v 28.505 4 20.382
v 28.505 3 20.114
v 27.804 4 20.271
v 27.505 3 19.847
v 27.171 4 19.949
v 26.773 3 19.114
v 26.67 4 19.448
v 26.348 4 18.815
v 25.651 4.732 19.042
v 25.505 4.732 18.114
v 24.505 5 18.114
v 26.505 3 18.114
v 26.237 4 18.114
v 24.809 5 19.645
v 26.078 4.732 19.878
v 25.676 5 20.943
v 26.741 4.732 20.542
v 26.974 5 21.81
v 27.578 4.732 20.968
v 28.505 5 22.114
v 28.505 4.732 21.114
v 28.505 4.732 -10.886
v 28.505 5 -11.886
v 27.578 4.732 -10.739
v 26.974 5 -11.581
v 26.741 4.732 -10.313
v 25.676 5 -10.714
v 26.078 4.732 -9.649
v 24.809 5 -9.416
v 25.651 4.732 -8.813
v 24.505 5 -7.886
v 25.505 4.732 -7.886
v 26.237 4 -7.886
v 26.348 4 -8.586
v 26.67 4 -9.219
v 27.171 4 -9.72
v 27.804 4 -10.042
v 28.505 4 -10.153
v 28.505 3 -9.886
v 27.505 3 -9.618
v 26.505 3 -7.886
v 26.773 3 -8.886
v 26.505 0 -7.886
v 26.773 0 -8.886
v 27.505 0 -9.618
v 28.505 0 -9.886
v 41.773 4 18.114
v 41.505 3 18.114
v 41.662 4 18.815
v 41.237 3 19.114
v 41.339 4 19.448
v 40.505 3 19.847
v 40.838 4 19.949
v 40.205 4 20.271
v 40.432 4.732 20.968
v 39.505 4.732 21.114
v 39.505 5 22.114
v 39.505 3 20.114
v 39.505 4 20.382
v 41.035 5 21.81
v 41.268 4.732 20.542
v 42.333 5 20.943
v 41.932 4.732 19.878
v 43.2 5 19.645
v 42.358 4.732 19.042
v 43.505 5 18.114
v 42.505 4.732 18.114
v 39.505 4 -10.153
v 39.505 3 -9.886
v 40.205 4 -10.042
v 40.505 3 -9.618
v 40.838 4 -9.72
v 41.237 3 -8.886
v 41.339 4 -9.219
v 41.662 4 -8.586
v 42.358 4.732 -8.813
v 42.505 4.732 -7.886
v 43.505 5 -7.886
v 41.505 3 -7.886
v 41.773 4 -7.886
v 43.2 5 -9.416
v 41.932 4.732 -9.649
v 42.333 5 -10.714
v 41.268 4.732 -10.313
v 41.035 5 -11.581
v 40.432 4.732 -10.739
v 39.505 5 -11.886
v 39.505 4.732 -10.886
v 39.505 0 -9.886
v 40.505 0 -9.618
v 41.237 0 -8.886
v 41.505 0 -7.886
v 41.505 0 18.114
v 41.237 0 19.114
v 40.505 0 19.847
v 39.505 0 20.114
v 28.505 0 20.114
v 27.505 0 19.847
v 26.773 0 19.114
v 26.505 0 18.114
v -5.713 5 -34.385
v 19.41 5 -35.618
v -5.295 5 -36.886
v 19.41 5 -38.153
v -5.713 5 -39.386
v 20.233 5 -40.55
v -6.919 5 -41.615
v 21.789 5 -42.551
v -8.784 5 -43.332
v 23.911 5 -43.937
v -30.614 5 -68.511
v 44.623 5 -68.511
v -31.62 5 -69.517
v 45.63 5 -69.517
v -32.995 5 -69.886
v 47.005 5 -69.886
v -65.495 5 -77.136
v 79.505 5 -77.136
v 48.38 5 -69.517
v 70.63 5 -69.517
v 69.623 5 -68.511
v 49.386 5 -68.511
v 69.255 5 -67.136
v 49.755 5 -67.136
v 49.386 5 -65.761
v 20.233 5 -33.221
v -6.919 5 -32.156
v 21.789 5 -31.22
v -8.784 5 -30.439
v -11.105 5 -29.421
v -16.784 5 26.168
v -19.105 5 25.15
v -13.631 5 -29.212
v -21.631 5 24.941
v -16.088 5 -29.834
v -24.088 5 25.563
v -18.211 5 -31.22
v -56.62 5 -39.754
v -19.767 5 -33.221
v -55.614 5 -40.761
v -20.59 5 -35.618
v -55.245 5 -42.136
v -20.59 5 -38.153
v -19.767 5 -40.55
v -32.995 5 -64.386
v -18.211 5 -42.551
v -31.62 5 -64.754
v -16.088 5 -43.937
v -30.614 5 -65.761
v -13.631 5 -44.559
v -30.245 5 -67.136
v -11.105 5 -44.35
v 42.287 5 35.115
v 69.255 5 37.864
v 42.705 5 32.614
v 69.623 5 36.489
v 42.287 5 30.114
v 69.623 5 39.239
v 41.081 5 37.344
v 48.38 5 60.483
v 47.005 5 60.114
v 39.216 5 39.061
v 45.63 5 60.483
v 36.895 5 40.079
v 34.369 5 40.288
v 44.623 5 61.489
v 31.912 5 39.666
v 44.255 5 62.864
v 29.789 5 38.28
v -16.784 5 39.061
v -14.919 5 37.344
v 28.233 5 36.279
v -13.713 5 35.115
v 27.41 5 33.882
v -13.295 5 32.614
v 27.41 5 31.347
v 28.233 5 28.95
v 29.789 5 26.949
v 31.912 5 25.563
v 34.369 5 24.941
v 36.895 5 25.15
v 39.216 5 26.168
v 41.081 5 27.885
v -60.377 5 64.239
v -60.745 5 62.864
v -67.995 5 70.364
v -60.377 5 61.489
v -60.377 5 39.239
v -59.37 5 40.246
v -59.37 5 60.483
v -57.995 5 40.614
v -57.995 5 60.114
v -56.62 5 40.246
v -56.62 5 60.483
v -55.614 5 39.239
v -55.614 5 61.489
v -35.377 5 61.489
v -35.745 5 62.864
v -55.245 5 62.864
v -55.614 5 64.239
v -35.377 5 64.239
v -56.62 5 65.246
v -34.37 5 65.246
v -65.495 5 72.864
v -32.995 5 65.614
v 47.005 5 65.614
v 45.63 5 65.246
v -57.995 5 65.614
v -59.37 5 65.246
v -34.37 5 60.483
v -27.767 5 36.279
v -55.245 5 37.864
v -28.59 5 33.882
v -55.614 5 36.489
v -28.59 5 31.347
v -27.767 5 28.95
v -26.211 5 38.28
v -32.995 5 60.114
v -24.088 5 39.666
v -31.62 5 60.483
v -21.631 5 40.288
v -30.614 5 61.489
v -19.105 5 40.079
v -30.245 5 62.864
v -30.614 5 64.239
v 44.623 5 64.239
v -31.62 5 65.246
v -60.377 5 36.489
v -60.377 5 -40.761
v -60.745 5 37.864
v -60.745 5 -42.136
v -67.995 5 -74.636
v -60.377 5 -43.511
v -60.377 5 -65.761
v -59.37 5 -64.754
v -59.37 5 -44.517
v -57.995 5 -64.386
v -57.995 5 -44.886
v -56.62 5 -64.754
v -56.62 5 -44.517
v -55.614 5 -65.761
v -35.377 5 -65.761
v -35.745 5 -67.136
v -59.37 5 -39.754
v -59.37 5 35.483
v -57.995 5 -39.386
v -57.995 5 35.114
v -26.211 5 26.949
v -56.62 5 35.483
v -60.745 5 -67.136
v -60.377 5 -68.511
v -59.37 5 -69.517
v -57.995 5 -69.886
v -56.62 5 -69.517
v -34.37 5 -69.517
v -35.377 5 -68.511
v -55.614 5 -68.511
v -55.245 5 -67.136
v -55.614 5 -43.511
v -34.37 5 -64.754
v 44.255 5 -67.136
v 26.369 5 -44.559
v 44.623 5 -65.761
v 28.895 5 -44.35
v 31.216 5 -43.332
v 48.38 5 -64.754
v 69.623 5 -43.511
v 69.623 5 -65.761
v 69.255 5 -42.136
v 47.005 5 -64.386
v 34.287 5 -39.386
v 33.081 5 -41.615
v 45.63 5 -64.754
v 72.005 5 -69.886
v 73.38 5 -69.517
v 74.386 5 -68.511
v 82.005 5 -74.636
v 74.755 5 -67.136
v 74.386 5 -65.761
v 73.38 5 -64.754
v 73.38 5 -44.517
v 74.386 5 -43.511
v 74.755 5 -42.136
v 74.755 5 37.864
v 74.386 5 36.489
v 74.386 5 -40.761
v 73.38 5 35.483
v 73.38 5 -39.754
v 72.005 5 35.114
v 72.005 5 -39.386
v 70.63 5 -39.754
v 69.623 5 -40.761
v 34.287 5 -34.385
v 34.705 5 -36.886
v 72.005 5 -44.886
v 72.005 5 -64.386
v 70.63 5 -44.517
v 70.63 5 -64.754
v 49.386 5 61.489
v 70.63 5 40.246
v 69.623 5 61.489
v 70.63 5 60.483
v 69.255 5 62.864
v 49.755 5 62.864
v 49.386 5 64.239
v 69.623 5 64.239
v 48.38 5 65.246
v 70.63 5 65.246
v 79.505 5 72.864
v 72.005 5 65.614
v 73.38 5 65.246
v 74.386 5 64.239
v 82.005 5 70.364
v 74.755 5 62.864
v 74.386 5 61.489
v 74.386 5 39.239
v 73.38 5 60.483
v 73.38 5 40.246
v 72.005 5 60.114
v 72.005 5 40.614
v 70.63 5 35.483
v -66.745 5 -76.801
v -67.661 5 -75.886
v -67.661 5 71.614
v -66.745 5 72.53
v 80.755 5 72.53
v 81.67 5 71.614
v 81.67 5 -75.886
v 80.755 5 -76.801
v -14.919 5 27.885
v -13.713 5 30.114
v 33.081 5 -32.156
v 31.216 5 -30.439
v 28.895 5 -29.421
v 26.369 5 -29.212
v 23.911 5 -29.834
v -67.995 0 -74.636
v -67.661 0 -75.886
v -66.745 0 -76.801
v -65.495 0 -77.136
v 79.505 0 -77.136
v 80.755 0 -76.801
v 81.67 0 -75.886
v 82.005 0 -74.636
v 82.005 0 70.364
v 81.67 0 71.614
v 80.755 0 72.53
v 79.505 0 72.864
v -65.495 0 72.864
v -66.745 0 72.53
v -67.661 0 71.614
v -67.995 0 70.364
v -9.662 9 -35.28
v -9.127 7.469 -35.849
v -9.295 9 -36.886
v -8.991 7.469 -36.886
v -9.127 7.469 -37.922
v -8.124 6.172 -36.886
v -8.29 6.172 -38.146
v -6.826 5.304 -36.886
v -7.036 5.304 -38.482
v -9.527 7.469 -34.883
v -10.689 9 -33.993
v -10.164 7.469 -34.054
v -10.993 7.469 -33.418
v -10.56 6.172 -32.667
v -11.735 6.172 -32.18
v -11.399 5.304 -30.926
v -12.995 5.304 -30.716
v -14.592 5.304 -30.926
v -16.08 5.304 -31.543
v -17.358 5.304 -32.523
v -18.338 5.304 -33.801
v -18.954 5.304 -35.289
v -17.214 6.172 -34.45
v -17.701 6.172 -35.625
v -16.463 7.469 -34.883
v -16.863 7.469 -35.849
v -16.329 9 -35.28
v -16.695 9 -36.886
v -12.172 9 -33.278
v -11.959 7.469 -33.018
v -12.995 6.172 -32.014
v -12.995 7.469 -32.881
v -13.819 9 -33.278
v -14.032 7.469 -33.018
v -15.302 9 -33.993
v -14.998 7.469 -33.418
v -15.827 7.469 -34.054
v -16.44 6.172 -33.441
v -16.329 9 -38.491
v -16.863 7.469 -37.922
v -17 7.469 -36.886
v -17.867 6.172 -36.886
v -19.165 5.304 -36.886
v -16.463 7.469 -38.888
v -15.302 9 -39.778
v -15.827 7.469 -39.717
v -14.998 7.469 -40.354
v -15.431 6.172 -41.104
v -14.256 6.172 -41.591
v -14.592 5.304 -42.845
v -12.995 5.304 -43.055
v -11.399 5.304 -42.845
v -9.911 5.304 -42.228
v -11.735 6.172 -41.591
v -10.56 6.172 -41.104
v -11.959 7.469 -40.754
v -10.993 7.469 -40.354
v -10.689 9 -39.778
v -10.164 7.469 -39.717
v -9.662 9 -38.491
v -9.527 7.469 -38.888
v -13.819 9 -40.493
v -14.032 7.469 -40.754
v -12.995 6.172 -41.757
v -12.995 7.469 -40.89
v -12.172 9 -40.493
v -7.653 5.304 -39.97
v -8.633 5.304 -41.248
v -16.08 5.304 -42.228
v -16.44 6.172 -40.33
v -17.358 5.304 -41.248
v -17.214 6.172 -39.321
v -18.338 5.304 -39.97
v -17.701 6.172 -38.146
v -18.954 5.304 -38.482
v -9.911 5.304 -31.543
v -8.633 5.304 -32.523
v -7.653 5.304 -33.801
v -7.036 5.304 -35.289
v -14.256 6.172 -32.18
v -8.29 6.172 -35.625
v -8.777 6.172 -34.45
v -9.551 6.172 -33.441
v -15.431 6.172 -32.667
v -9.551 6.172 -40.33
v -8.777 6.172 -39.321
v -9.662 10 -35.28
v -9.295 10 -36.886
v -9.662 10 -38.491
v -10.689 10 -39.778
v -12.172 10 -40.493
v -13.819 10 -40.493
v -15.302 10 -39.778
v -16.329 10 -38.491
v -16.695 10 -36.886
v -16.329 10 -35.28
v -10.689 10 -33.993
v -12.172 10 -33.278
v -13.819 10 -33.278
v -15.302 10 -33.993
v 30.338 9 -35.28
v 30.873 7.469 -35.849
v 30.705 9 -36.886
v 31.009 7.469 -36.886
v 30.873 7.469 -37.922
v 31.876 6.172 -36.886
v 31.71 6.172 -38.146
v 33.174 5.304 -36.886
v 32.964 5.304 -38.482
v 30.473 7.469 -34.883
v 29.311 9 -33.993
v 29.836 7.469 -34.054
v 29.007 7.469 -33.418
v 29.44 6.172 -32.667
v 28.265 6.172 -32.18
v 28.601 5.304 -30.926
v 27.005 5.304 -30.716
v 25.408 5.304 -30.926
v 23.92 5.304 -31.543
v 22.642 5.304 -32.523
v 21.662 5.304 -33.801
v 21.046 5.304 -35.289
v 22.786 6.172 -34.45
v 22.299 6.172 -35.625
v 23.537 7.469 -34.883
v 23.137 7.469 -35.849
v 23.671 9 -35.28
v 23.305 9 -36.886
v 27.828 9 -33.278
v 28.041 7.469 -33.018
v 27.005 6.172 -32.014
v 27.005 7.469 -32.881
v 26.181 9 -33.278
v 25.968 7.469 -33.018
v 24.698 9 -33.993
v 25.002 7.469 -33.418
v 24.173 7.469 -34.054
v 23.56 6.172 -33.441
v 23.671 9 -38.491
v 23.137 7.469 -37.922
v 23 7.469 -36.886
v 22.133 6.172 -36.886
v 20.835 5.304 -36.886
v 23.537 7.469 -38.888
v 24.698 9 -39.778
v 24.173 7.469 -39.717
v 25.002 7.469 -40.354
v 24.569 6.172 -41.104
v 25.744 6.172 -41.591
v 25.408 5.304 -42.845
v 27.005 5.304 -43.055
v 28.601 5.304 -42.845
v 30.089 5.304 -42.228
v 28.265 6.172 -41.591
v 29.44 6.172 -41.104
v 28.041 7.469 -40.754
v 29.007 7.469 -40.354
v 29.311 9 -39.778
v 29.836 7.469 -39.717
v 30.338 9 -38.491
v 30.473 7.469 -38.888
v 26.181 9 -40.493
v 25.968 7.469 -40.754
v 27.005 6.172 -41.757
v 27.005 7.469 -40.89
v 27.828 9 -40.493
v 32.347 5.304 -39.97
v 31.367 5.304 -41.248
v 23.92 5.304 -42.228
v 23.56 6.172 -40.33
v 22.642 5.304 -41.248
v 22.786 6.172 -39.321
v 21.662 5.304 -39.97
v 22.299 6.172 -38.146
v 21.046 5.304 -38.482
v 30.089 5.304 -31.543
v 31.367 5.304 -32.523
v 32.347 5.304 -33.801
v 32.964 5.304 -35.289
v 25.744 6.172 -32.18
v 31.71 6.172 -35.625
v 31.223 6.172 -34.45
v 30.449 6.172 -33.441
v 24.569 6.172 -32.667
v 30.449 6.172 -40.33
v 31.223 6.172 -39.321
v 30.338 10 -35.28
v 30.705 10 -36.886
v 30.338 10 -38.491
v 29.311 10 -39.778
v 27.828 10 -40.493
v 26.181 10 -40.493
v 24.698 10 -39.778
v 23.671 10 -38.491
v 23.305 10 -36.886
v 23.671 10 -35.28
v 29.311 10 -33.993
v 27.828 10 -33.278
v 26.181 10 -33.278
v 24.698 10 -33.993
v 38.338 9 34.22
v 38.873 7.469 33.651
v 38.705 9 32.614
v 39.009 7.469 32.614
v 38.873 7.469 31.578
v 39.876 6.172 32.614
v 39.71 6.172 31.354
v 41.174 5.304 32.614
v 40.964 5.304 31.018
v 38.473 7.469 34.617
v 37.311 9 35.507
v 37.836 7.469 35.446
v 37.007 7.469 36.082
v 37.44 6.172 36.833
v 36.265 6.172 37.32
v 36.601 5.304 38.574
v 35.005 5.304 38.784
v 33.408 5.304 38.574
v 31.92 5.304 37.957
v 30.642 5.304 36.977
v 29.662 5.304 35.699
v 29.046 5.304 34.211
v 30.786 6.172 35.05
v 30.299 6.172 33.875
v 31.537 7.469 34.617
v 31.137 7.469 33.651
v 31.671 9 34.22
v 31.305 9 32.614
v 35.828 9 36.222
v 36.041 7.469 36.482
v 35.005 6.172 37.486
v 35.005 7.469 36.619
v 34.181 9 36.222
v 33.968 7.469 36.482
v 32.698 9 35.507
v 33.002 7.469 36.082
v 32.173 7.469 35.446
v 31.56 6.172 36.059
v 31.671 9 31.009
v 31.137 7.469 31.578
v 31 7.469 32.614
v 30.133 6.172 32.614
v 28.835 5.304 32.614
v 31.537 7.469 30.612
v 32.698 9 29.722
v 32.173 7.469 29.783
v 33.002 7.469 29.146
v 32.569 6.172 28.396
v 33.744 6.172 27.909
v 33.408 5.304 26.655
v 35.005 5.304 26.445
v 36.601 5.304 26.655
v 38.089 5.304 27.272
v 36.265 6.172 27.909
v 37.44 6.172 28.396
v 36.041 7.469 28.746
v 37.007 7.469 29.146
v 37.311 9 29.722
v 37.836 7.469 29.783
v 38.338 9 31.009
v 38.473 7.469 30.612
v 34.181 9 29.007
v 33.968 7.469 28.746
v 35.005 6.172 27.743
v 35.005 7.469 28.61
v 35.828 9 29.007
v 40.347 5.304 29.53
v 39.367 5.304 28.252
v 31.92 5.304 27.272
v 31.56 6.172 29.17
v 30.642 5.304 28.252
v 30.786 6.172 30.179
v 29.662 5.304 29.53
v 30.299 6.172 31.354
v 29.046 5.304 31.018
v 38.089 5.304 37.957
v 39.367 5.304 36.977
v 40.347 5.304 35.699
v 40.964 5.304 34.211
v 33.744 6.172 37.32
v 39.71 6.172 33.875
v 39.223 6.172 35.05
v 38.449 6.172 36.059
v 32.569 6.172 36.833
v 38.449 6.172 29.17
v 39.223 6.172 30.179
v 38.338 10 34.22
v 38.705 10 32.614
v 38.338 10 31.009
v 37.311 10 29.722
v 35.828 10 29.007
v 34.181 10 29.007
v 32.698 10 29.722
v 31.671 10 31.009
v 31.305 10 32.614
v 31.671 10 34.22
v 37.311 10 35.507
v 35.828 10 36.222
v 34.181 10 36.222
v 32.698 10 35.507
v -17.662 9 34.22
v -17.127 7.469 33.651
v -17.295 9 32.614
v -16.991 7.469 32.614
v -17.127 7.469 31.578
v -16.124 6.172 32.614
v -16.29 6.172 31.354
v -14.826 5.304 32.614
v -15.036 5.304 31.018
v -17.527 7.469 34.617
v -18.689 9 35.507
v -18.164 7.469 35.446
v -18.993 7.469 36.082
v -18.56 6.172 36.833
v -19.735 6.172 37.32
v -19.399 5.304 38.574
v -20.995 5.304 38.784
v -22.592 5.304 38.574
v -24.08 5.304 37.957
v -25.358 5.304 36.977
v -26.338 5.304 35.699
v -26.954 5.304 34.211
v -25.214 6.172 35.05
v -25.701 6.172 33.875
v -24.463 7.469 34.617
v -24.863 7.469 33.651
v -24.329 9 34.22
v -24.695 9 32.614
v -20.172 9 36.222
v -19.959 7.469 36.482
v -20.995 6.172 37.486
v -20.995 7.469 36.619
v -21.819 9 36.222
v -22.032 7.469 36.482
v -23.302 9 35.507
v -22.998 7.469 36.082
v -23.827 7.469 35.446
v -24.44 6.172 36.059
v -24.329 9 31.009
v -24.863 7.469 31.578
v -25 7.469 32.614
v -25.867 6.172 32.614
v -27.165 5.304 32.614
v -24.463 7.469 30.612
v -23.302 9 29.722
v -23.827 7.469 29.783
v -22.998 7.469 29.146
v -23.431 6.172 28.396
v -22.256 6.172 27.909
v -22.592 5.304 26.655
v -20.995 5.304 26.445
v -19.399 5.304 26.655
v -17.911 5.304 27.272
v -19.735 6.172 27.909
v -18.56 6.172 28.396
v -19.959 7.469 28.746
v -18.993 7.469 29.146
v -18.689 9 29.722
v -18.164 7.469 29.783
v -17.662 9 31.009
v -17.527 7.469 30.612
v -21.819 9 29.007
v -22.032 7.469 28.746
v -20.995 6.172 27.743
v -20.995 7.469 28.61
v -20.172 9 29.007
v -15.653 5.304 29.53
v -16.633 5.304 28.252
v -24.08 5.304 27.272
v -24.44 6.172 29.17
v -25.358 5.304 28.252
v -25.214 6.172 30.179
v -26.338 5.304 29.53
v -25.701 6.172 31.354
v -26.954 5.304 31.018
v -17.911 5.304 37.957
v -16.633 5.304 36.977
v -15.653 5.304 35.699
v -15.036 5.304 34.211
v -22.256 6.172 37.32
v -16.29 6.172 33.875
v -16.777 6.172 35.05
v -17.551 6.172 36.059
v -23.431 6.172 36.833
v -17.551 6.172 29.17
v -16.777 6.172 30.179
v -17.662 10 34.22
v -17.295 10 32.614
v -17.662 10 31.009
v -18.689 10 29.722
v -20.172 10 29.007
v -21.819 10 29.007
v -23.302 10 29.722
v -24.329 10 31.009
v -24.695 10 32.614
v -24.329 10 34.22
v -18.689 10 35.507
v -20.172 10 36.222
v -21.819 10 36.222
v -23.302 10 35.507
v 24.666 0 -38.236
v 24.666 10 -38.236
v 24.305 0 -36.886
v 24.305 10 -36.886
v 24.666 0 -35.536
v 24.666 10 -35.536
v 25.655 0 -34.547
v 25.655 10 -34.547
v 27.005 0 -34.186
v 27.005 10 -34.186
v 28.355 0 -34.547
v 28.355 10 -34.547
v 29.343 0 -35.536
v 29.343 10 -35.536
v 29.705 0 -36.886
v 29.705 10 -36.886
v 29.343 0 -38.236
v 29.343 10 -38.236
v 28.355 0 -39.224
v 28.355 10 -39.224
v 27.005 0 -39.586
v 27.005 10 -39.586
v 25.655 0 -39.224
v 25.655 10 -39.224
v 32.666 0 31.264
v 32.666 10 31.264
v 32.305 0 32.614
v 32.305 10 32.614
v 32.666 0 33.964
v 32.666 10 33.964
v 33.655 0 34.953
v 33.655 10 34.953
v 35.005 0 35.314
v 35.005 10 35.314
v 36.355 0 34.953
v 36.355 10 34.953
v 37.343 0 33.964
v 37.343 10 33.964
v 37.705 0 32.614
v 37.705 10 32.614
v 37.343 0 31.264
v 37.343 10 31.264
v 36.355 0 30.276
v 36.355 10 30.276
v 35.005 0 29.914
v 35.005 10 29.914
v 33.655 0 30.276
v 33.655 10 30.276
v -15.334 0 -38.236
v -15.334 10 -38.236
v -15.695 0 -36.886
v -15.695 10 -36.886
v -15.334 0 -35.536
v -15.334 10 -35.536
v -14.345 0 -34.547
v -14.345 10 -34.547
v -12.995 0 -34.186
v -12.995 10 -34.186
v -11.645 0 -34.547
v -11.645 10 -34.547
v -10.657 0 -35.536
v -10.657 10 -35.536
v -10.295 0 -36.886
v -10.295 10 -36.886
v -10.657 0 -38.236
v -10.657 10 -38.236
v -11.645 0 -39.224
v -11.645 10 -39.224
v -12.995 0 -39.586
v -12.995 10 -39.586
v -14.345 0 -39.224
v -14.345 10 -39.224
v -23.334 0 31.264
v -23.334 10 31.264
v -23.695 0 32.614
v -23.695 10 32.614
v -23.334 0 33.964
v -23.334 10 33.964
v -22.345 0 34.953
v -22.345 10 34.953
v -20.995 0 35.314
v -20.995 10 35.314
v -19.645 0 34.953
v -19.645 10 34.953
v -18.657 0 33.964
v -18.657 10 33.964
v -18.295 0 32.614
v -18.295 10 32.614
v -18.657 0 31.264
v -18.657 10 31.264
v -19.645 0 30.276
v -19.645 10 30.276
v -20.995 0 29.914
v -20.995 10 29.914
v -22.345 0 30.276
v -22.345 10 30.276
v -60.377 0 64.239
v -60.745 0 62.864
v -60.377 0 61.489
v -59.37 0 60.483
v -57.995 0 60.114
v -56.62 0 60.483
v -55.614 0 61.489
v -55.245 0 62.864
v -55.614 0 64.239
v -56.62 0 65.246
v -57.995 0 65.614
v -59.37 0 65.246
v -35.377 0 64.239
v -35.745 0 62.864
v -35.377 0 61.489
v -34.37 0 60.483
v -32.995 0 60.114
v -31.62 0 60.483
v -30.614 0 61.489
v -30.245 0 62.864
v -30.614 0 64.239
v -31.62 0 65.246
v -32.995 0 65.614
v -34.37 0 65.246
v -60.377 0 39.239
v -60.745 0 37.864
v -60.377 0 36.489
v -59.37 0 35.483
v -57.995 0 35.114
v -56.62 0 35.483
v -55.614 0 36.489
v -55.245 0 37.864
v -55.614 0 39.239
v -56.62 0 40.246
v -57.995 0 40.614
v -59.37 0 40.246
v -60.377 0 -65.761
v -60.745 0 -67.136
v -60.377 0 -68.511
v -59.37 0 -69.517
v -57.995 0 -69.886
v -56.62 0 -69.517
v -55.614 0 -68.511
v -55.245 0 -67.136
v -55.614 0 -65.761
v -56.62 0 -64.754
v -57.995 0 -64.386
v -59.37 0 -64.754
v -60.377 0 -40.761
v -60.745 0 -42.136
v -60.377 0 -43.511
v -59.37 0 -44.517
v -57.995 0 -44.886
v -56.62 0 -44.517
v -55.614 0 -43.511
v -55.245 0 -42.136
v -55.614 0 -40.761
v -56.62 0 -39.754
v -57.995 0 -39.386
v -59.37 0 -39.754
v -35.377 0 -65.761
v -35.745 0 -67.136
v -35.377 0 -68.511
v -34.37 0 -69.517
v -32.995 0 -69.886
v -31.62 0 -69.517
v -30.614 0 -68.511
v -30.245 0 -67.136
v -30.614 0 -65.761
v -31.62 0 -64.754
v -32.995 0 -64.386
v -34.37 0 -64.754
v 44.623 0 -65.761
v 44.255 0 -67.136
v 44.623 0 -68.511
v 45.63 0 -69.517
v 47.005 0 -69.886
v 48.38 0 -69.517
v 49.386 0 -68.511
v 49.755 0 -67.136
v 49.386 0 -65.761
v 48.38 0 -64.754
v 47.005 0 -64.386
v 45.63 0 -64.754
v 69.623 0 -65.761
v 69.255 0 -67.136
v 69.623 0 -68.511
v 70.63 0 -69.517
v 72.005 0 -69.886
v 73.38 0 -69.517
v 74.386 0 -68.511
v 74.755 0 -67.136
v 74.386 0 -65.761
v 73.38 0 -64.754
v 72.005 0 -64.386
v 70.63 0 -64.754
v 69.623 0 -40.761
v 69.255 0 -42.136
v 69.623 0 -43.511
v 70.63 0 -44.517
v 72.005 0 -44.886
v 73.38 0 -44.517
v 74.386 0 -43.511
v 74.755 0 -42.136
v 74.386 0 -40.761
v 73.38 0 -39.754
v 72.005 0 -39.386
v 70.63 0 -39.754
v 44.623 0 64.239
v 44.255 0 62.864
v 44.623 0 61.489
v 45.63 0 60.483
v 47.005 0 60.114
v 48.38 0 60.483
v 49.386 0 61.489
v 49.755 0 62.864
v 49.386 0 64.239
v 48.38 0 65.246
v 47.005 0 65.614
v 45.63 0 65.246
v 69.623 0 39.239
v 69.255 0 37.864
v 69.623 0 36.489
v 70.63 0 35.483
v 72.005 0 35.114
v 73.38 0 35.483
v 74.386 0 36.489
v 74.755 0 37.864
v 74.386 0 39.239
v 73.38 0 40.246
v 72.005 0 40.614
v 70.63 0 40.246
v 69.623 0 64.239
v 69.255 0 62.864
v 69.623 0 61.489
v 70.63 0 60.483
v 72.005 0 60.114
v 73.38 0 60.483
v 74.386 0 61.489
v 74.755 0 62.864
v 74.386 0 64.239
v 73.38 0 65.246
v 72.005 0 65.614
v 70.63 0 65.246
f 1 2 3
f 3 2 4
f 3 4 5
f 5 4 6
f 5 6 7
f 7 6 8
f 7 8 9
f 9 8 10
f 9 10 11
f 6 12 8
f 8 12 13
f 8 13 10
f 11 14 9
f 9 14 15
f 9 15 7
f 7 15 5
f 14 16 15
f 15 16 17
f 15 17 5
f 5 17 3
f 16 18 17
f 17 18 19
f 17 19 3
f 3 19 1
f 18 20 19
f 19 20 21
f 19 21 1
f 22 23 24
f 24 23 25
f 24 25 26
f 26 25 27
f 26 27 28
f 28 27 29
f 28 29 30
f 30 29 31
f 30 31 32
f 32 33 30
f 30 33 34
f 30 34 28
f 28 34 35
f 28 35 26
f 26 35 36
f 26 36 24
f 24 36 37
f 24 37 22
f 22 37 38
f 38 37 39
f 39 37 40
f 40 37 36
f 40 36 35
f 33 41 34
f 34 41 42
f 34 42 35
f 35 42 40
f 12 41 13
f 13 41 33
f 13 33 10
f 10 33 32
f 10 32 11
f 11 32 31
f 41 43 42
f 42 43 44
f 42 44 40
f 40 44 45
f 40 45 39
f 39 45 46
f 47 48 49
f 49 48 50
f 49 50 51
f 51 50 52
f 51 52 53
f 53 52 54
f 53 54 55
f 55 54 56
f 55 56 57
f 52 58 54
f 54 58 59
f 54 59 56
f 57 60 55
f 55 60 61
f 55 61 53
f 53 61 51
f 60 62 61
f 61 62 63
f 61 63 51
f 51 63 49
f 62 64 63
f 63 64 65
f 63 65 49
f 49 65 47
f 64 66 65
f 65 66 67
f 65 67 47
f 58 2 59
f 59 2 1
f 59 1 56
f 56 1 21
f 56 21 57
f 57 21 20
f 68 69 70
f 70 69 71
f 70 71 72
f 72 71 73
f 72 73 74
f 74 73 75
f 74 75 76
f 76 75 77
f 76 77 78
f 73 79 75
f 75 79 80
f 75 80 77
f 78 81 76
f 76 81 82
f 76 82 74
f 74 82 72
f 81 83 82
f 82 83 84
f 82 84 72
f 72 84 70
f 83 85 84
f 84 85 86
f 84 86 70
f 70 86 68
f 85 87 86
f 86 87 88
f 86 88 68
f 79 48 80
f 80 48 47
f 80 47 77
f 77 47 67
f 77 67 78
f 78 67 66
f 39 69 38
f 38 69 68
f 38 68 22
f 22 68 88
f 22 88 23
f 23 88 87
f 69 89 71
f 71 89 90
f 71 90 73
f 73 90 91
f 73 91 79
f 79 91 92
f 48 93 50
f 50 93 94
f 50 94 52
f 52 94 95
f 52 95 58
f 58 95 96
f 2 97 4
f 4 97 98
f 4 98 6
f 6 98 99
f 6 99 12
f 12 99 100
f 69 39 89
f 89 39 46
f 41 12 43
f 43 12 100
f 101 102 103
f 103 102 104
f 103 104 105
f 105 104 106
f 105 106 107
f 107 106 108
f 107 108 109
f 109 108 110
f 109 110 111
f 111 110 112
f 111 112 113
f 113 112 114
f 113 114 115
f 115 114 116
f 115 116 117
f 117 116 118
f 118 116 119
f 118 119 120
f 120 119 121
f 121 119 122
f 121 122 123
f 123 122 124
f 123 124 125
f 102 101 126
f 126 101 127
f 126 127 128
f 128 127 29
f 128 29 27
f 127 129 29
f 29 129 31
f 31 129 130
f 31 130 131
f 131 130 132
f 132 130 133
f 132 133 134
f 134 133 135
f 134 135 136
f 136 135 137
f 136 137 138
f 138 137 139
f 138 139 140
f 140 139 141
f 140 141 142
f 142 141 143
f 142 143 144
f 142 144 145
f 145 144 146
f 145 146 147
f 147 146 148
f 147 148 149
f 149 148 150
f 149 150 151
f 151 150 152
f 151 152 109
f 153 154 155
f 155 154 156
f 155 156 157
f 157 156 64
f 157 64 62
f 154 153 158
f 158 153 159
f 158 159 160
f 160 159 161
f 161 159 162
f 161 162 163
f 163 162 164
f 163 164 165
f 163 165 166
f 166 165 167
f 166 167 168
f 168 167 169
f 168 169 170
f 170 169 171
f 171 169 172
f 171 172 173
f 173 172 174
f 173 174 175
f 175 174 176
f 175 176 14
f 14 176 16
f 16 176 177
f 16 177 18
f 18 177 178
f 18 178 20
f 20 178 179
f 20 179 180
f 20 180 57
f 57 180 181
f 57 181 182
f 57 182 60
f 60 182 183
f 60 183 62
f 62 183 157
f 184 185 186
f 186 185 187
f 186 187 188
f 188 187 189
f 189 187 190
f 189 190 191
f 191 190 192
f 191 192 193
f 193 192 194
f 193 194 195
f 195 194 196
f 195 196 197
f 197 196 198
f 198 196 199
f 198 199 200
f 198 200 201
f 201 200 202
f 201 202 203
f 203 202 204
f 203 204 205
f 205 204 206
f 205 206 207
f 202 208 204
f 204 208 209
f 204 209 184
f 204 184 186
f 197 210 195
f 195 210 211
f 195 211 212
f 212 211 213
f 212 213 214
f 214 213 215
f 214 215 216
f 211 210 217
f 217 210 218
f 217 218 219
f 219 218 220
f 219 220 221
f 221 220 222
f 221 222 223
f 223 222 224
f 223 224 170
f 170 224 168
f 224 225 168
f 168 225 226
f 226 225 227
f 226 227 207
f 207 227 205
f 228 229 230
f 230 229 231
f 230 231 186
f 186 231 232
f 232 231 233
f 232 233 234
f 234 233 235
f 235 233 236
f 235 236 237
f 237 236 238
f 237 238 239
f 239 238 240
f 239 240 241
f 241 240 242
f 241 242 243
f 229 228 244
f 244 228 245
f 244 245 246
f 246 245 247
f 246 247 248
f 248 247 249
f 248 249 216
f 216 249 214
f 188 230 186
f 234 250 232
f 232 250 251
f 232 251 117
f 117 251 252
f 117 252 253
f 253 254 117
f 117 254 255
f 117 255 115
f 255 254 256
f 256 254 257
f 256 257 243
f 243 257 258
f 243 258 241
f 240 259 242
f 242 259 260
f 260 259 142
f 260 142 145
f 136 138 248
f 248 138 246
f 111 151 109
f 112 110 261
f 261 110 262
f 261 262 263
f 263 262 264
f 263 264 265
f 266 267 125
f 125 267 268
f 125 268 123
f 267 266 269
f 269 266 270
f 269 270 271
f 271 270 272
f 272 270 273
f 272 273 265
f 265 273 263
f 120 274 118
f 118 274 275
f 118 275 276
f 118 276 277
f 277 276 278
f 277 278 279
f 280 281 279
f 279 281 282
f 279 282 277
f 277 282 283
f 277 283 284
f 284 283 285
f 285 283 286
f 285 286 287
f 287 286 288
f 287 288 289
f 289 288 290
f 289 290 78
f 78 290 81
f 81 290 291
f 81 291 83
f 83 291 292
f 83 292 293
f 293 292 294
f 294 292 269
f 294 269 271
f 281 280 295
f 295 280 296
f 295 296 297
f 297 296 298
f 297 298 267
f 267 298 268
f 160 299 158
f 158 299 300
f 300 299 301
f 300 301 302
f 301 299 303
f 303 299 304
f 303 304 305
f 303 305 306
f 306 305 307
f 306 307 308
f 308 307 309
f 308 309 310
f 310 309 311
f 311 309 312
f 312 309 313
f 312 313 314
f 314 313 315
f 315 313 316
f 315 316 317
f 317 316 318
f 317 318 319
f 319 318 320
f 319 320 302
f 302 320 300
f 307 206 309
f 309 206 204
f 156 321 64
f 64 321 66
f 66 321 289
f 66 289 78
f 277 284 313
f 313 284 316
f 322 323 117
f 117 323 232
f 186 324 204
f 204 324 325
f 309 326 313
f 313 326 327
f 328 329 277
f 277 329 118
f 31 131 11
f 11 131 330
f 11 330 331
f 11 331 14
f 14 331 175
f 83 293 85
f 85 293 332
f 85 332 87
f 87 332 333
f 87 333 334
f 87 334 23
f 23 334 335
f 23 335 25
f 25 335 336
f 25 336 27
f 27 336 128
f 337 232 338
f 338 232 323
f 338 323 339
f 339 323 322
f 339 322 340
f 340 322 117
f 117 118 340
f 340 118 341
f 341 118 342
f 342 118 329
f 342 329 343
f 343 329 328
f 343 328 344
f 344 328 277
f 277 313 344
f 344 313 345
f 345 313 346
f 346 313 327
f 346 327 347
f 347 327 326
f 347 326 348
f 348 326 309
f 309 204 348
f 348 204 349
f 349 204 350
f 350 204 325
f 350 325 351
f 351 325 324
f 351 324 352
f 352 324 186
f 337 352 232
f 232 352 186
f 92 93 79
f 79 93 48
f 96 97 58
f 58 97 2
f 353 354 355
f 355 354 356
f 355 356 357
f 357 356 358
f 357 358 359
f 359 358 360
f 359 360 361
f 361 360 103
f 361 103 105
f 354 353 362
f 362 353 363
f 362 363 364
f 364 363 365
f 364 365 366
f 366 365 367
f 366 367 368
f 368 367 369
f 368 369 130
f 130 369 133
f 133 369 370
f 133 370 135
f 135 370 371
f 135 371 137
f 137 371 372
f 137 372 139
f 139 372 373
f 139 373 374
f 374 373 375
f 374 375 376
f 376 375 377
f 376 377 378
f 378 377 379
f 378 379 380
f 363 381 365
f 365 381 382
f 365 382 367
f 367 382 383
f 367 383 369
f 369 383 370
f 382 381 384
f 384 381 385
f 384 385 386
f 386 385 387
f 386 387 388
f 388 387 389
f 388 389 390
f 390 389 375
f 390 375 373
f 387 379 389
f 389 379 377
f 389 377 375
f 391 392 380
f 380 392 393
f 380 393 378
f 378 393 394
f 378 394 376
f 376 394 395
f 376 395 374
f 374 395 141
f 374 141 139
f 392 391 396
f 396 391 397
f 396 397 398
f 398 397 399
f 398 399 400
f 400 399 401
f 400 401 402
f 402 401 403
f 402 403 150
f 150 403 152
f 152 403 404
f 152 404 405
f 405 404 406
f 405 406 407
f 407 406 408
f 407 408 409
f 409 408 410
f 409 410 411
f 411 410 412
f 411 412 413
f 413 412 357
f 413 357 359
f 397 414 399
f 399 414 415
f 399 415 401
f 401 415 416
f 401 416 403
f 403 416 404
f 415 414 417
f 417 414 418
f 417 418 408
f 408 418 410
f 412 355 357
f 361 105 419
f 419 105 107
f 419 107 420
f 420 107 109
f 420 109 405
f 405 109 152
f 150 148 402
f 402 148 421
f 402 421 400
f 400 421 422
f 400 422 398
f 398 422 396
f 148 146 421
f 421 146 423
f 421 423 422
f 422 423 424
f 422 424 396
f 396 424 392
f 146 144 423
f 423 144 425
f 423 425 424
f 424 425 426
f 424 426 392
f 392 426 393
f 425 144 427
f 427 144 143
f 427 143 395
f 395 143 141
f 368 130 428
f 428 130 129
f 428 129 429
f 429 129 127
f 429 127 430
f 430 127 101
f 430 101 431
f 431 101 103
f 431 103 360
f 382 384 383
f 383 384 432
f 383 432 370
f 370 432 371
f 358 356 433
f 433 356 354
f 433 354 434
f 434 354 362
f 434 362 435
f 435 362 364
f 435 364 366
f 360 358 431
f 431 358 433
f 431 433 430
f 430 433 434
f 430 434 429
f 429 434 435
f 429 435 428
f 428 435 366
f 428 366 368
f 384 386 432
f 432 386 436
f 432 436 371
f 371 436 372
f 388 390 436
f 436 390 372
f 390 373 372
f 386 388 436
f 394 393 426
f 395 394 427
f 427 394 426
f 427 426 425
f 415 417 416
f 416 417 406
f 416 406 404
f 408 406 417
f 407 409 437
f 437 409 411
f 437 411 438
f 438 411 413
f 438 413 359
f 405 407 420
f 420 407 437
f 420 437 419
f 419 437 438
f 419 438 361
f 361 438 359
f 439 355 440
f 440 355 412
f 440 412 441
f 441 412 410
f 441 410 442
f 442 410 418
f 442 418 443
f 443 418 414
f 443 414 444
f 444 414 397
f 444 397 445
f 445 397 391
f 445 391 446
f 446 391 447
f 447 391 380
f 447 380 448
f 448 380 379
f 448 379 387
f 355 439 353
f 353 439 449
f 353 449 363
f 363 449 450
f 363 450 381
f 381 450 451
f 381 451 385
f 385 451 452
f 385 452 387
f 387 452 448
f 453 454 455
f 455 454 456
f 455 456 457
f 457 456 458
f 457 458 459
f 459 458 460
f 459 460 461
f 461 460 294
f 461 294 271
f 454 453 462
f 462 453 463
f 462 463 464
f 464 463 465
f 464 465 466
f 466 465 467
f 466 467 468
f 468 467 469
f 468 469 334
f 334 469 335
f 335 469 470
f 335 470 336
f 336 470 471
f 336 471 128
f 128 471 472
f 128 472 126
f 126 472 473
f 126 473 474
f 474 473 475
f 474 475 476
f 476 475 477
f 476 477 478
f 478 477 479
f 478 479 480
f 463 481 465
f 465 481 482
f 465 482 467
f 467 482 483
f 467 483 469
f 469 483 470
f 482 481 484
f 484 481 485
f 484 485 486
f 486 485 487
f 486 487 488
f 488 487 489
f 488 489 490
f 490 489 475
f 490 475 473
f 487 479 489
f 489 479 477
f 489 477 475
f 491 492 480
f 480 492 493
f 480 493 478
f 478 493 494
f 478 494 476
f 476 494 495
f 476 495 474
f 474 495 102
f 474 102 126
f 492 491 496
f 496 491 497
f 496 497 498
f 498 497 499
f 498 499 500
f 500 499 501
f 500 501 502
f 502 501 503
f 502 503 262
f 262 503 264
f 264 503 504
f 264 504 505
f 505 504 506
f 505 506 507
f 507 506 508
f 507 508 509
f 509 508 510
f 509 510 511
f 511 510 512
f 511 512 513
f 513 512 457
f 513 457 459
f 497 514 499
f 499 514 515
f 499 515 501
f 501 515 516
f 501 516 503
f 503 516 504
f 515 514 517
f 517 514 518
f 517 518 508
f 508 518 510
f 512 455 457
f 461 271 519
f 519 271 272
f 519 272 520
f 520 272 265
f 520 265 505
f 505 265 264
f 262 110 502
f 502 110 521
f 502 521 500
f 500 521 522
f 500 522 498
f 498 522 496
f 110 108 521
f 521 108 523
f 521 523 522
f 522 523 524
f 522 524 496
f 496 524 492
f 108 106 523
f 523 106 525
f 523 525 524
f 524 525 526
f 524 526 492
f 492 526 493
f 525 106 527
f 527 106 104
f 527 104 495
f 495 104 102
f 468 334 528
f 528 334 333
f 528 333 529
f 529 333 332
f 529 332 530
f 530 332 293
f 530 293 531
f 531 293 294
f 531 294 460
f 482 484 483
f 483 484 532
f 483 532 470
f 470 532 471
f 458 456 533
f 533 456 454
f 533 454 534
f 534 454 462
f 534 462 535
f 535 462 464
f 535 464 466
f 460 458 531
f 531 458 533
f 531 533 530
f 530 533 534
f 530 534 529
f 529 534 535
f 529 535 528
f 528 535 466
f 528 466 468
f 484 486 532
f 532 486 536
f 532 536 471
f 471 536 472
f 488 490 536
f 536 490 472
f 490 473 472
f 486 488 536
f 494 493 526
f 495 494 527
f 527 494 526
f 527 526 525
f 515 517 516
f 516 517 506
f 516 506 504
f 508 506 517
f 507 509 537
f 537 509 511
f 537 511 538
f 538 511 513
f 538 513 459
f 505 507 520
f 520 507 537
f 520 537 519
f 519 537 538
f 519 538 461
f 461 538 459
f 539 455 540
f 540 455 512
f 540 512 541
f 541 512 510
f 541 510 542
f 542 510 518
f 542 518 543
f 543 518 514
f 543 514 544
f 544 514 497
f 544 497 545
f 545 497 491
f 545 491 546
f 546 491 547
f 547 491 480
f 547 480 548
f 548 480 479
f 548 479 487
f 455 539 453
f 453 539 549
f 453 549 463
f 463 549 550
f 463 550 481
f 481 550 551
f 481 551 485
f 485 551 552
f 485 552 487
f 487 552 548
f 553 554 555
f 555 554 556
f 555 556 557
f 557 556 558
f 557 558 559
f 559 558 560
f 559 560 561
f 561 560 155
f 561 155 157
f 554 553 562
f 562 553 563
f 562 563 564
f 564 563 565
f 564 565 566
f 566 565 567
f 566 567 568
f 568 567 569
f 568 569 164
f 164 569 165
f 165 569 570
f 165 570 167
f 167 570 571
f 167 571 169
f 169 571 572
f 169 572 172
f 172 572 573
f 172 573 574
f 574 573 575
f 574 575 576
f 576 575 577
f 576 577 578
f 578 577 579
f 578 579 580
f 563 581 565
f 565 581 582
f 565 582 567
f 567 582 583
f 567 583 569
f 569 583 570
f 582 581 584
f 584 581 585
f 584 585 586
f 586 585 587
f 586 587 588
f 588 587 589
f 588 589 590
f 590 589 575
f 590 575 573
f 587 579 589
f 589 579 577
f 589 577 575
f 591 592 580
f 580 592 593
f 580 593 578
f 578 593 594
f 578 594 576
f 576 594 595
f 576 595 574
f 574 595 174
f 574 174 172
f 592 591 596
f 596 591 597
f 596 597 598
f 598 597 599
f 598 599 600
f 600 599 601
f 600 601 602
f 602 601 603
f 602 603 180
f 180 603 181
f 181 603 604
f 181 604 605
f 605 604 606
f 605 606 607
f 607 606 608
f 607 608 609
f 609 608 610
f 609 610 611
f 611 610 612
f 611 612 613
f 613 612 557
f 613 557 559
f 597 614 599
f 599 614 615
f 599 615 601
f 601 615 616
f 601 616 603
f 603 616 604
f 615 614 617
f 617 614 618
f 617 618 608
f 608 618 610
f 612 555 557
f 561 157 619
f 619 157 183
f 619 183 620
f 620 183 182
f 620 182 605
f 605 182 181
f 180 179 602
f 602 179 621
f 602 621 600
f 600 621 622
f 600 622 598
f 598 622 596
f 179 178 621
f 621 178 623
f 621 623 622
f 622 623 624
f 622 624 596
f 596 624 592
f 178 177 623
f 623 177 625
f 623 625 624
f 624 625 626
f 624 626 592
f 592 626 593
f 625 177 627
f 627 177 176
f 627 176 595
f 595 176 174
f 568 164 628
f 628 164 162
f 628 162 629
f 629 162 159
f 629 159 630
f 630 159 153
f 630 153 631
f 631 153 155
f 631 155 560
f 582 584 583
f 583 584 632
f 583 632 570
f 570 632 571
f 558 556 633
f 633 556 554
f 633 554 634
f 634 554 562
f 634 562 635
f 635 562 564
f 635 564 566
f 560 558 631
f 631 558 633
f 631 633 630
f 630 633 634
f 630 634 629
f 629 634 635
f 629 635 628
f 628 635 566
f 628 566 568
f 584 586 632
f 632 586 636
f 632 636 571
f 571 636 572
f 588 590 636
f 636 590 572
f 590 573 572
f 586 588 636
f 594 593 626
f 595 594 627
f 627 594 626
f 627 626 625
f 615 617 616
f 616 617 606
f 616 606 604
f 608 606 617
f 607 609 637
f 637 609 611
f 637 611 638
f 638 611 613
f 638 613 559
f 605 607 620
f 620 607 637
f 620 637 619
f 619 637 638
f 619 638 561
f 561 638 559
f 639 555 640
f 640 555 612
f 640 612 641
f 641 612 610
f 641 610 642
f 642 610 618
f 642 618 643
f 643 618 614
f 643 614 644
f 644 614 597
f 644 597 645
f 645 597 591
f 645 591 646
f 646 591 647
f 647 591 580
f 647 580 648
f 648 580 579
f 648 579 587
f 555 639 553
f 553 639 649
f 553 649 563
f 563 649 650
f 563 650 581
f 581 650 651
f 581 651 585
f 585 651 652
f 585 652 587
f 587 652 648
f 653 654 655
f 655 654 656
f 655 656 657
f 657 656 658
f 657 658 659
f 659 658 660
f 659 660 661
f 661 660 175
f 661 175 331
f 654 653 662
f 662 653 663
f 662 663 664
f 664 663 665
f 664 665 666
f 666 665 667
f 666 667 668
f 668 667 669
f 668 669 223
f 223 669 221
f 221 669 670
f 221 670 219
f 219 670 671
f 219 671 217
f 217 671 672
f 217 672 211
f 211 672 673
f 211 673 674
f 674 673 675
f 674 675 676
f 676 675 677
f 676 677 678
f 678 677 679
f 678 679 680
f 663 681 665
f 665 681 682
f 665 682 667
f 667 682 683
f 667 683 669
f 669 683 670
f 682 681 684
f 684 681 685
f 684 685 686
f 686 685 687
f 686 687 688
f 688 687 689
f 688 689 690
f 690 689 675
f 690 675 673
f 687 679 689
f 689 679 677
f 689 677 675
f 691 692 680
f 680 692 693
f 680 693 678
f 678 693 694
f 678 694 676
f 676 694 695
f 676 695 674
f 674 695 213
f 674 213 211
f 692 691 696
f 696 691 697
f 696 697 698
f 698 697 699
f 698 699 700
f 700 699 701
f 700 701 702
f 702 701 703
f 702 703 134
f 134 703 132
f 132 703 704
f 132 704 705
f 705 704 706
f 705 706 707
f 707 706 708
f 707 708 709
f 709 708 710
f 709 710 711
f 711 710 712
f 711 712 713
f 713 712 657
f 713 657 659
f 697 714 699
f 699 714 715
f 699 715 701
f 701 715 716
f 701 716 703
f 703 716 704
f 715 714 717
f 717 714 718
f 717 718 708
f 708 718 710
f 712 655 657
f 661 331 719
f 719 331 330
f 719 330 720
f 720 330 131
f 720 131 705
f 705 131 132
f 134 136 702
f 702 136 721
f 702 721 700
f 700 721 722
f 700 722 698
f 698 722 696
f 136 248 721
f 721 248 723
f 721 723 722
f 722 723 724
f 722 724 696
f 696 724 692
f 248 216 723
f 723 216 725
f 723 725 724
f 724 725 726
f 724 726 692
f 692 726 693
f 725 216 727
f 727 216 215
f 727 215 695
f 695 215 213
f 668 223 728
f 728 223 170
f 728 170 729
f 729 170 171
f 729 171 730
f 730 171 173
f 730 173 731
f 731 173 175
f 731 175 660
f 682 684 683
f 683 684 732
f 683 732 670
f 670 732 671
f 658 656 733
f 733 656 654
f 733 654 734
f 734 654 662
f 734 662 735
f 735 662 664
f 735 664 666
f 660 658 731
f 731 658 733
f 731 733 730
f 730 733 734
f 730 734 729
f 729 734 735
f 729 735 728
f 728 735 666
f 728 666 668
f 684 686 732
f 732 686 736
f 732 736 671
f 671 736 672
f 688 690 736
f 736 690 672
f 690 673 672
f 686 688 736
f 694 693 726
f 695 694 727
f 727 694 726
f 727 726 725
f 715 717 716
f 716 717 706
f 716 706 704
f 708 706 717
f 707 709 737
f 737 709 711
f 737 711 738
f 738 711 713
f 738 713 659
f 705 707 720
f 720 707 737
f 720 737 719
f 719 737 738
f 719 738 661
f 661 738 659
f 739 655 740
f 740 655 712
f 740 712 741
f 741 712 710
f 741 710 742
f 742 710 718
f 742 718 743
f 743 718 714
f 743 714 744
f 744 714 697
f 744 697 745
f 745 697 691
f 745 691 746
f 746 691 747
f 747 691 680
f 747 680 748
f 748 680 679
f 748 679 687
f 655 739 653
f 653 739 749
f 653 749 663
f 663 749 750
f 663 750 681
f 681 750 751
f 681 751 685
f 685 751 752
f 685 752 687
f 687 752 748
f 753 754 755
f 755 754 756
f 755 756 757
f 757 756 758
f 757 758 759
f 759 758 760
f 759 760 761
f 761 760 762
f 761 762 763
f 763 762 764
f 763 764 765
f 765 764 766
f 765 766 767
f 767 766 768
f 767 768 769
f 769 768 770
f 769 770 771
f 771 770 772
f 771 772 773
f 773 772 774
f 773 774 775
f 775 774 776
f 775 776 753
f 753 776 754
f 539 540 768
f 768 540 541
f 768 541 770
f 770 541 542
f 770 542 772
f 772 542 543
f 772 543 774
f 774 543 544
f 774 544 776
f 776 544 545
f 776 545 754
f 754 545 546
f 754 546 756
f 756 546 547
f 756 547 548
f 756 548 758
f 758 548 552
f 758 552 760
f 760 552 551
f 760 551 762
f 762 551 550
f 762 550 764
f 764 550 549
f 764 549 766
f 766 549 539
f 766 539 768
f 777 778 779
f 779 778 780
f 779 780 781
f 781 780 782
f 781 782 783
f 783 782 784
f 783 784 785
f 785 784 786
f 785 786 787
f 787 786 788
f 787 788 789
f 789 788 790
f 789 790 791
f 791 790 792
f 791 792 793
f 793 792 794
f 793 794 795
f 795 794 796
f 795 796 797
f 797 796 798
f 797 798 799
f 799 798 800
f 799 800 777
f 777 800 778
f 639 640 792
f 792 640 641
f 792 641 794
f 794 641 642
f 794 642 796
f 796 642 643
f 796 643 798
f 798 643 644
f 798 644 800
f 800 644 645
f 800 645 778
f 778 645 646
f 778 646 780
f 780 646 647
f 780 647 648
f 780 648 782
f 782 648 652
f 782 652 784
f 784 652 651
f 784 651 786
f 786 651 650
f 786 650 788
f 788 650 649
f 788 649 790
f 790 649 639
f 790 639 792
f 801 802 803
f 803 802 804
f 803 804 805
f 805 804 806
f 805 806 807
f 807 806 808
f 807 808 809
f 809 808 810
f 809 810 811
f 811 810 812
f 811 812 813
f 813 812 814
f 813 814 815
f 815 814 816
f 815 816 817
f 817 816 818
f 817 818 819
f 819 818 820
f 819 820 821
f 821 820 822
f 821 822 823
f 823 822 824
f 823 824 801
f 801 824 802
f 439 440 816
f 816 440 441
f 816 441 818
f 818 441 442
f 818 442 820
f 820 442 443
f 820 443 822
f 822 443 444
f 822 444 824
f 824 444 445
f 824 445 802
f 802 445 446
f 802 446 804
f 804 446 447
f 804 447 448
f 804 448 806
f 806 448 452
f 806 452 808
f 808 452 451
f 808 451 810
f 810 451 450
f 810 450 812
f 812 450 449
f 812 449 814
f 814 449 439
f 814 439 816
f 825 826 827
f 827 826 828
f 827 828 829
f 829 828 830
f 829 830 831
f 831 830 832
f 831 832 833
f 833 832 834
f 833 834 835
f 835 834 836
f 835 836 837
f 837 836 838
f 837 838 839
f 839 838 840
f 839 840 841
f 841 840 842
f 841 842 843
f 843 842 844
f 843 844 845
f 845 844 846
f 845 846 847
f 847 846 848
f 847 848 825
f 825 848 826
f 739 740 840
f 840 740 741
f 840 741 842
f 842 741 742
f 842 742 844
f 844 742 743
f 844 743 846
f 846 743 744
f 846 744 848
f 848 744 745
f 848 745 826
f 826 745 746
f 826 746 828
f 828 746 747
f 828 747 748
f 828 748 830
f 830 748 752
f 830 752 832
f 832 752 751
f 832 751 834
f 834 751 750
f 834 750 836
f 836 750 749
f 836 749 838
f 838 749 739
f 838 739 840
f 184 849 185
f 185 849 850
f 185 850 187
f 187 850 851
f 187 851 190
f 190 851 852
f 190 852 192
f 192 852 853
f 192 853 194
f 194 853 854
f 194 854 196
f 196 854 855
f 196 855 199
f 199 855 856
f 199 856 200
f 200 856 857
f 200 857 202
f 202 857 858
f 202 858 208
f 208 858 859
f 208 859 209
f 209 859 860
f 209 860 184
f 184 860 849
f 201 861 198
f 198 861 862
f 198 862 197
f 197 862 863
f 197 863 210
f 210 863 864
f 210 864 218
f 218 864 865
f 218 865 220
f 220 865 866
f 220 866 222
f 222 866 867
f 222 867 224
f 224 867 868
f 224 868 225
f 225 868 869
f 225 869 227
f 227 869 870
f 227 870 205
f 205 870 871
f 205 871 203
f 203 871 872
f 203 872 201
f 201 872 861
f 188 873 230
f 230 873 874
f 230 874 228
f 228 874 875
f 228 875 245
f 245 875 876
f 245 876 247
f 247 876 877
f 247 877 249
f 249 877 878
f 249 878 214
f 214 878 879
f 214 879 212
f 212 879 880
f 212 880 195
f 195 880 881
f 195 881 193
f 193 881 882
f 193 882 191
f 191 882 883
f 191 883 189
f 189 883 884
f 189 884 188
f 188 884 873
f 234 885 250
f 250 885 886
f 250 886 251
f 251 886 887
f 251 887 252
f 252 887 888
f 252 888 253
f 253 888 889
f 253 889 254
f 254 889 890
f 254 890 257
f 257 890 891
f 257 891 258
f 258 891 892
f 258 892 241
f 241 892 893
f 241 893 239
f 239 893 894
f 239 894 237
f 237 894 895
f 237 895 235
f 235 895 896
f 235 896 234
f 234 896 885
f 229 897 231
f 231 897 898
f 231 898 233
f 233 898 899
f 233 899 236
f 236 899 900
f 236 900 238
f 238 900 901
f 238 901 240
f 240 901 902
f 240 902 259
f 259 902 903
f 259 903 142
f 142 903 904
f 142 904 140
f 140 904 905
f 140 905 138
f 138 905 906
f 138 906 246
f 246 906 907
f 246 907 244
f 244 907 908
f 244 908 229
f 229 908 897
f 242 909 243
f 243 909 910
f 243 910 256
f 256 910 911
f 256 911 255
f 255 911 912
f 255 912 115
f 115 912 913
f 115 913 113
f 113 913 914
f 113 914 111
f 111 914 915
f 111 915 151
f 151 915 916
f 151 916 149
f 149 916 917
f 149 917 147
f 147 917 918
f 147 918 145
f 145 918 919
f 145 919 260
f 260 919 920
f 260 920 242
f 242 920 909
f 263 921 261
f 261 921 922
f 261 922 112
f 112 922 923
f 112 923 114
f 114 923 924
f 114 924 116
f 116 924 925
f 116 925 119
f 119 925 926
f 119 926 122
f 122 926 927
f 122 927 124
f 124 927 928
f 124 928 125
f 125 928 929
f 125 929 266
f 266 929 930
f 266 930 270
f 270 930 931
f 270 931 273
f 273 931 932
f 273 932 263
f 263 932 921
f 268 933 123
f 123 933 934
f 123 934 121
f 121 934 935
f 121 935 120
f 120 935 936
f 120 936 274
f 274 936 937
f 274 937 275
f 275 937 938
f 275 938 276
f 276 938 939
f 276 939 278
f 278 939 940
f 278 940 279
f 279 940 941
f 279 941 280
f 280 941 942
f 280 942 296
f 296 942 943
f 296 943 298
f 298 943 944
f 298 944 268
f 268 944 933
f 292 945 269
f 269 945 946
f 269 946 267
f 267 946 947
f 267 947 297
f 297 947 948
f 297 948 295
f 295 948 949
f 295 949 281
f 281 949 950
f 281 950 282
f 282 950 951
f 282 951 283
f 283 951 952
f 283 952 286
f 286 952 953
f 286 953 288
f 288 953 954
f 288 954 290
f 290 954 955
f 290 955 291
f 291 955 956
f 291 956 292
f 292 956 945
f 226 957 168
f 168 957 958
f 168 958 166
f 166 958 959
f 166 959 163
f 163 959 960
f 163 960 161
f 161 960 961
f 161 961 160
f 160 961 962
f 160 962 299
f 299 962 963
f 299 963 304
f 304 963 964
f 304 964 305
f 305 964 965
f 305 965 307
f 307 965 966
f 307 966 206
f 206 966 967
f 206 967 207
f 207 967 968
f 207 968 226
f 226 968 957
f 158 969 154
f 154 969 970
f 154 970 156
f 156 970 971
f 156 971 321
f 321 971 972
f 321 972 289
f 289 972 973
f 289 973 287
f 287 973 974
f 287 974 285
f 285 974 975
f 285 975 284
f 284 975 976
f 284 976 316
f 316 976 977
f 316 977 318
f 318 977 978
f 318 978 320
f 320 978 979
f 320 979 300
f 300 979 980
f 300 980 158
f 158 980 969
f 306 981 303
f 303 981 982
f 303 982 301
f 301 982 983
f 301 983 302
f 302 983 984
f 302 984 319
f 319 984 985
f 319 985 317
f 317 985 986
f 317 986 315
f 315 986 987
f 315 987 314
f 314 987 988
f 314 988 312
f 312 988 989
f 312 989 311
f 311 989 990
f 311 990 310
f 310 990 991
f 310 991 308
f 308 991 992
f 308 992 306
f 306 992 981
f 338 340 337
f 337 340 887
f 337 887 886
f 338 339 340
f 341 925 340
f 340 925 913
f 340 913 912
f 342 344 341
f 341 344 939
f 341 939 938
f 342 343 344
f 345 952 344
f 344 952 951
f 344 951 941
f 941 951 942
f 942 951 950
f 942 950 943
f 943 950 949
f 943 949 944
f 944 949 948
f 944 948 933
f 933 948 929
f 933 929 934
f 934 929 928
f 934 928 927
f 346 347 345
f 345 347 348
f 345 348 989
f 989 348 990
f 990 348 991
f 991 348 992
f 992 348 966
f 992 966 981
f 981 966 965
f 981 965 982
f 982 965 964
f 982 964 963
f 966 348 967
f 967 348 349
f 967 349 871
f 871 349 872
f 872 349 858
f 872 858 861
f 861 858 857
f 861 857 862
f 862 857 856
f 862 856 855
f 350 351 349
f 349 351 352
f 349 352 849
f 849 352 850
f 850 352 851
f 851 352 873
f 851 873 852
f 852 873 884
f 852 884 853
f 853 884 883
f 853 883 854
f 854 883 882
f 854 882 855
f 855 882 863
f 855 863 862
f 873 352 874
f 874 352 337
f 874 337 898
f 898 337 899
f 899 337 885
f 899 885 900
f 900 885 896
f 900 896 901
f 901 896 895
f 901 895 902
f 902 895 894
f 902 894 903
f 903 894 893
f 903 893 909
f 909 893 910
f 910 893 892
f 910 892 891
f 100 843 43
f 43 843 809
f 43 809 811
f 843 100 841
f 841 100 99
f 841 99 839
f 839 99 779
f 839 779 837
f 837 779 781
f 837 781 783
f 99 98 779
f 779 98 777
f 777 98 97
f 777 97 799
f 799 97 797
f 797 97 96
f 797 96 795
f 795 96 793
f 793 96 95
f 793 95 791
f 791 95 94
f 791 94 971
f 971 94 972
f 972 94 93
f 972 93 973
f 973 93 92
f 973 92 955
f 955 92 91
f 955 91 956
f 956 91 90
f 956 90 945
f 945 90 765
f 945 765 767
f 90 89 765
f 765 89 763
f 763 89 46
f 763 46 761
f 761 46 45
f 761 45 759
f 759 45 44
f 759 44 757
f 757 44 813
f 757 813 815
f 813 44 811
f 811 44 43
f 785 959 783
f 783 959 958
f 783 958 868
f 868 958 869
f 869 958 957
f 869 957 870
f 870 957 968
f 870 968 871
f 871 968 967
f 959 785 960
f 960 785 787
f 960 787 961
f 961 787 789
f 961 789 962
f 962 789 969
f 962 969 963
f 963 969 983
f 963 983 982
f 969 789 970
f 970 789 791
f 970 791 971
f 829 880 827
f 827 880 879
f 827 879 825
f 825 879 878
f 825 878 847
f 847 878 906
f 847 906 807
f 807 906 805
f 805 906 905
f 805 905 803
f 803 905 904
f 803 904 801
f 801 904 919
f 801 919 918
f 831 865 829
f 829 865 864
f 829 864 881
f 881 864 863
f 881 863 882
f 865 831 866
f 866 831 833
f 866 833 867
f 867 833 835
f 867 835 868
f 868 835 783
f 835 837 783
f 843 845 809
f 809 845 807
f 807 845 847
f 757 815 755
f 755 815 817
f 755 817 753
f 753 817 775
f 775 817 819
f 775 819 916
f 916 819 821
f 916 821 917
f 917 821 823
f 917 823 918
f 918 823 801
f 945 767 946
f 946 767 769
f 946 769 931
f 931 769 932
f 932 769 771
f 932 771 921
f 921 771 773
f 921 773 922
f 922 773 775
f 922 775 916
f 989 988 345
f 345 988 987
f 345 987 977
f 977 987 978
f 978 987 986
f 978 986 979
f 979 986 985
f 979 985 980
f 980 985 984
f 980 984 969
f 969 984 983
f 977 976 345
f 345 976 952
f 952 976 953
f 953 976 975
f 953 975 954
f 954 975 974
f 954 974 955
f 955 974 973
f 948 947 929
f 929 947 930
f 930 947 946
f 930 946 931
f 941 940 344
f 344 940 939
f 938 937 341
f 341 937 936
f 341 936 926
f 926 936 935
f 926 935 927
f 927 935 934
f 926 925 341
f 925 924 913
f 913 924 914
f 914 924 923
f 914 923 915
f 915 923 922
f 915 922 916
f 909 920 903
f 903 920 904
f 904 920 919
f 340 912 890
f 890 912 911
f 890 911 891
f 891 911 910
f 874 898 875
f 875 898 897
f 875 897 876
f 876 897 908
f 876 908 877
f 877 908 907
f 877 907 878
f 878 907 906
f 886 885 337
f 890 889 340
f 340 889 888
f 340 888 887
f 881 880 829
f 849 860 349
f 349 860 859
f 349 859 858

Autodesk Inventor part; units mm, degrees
ref_plane "YZ Plane" through (0, 0, 0) normal (1, 0, 0) x (0, 1, 0)
ref_plane "XZ Plane" through (0, 0, 0) normal (0, 1, 0) x (-1, 0, 0)
ref_plane "XY Plane" through (0, 0, 0) normal (0, 0, 1) x (1, 0, 0)
sketch "Sketch2" plane through (0, 0, 0) normal (0, 1, 0) x (-1, 0, 0)
  line L0 (67.9954, 72.8645) -> (-82.0046, 72.8645)
  line L1 (-82.0046, 72.8645) -> (-82.0046, -77.1355)
  line L2 (-82.0046, -77.1355) -> (67.9954, -77.1355)
  line L3 (67.9954, -77.1355) -> (67.9954, 72.8645)
  circle A0 centre (57.9954, 62.8645) radius 2.75
  circle A1 centre (32.9954, 62.8645) radius 2.75
  circle A2 centre (57.9954, 37.8645) radius 2.75
  line L4 (67.9954, -2.1355) -> (-82.0046, -2.1355)
  line L5 (-7.0046, 72.8645) -> (-7.0046, -77.1355)
  circle A3 centre (57.9954, -67.1355) radius 2.75
  circle A4 centre (32.9954, -67.1355) radius 2.75
  circle A5 centre (57.9954, -42.1355) radius 2.75
  circle A6 centre (-72.0046, 62.8645) radius 2.75
  circle A7 centre (-47.0046, 62.8645) radius 2.75
  circle A8 centre (-72.0046, 37.8645) radius 2.75
  circle A9 centre (-72.0046, -67.1355) radius 2.75
  circle A10 centre (-72.0046, -42.1355) radius 2.75
  circle A11 centre (-47.0046, -67.1355) radius 2.75
  point P0 (0, 0)
  dimension "d0" = 150
  dimension "d1" = 150
  dimension "d2" = 10
  dimension "d3" = 10
  dimension "d4" = 25
  dimension "d5" = 25
  dimension "d6" = 10
  dimension "d7" = 10
  dimension "d42" = 5.5
  dimension "d43" = 5.5
  dimension "d44" = 5.5
extrude "Extrusion1" add sketch "Sketch2" along normal blind 5
sketch "Sketch4" plane through (0, 5, 0) normal (0, 1, 0) x (1, 0, 0)
  line L0 (-12.9954, 36.8855) -> (27.0046, 36.8855)
  line L1 (27.0046, 36.8855) -> (35.0046, -32.6145)
  line L2 (35.0046, -32.6145) -> (-20.9954, -32.6145)
  line L3 (-20.9954, -32.6145) -> (-12.9954, 36.8855)
  line L4 (7.0046, 36.8855) -> (7.0046, -32.6145)
  line L5 (82.0046, -72.8645) -> (82.0046, 77.1355) projected
  line L6 (-16.9954, 2.1355) -> (31.0046, 2.1355)
  line L7 (82.0046, 77.1355) -> (-67.9954, 77.1355) projected
  circle A0 centre (-12.9954, 36.8855) radius 2.7
  circle A1 centre (27.0046, 36.8855) radius 2.7
  circle A2 centre (35.0046, -32.6145) radius 2.7
  circle A3 centre (-20.9954, -32.6145) radius 2.7
  circle A4 centre (-12.9954, 36.8855) radius 3.7
  circle A5 centre (27.0046, 36.8855) radius 3.7
  circle A6 centre (35.0046, -32.6145) radius 3.7
  circle A7 centre (-20.9954, -32.6145) radius 3.7
  point P0 (0, 0)
  dimension "d17" = 40
  dimension "d18" = 56
  dimension "d19" = 75
  dimension "d20" = 75
  dimension "d21" = 5.4
  dimension "d22" = 5.4
  dimension "d23" = 5.4
  dimension "d24" = 5.4
  dimension "d25" = 1
  dimension "d26" = 1
  dimension "d27" = 1
  dimension "d28" = 1
  dimension "d45" = 69.5
extrude "Extrusion3" add sketch "Sketch4" along normal blind 5 contours A0 L3 A4 L0 | L0 A4 L3 A0 | A5 L1 A1 L0 | L0 A1 L1 A5 | A7 L2 A3 L3 | L3 A3 L2 A7 | A6 L1 A2 L2 | L2 A2 L1 A6
sketch "Sketch5" plane through (-20.9954, 5, 32.6145) normal (0, 1, 0) x (1, 0, 0)
  circle A0 centre (0, 0) radius 2.7 projected
  circle A1 centre (0, 0) radius 2.7
  circle A2 centre (48, 69.5) radius 2.7 projected
  circle A3 centre (48, 69.5) radius 2.7
  circle A4 centre (56, 0) radius 2.7 projected
  circle A5 centre (56, 0) radius 2.7
  circle A6 centre (8, 69.5) radius 3.7 projected
  circle A7 centre (8, 69.5) radius 2.7
  point P0 (20.9954, 32.6145)
extrude "Extrusion4" cut sketch "Sketch5" against normal through all contours A0 | A2 | A4 | A7
fillet "Fillet1" radius 4 4 edges at (-24.6954, 5, 32.6145) (31.3046, 5, 32.6145) (23.3046, 5, -36.8855) (-16.6954, 5, -36.8855)
sketch "Sketch6" plane through (0, 5, 0) normal (0, 1, 0) x (1, 0, 0)
  line L0 (26.5046, 9.8855) -> (41.5046, 9.8855)
  line L1 (41.5046, 9.8855) -> (41.5046, -20.1145)
  line L2 (41.5046, -20.1145) -> (26.5046, -20.1145)
  line L3 (26.5046, -20.1145) -> (26.5046, 9.8855)
  line L4 (26.5046, -5.1145) -> (41.5046, -5.1145)
  line L5 (34.0046, 9.8855) -> (34.0046, -20.1145)
  circle A0 centre (35.0046, -32.6145) radius 2.7 projected
  point P0 (0, 0)
  dimension "d34" = 15
  dimension "d35" = 30
  dimension "d36" = 27.5
  dimension "d37" = 1
extrude "Extrusion5" cut sketch "Sketch6" against normal through all contours L0 L5 L4 L3 | L0 L1 L4 L5 | L4 L5 L2 L3 | L4 L1 L2 L5
fillet "Fillet3" radius 2.5 4 edges at (-67.9954, 2.5, 72.8645) (82.0046, 2.5, 72.8645) (82.0046, 2.5, -77.1355) (-67.9954, 2.5, -77.1355)
fillet "Fillet4" radius 2 8 edges at (41.5046, 2.5, -9.8855) (41.5046, 5, 5.1145) (34.0046, 5, -9.8855) (26.5046, 2.5, -9.8855) (26.5046, 5, 5.1145) (34.0046, 5, 20.1145) (26.5046, 2.5, 20.1145) (41.5046, 2.5, 20.1145)
equation "\"d1\" = d0"
equation "\"d6\" = d3"
equation "\"d7\" = d2"
equation "\"d22\" = d21"
equation "\"d23\" = d21"
equation "\"d24\" = d21"
equation "\"d26\" = d25"
equation "\"d27\" = d25"
equation "\"d28\" = d25"
properties part number "agv_nano_base"
